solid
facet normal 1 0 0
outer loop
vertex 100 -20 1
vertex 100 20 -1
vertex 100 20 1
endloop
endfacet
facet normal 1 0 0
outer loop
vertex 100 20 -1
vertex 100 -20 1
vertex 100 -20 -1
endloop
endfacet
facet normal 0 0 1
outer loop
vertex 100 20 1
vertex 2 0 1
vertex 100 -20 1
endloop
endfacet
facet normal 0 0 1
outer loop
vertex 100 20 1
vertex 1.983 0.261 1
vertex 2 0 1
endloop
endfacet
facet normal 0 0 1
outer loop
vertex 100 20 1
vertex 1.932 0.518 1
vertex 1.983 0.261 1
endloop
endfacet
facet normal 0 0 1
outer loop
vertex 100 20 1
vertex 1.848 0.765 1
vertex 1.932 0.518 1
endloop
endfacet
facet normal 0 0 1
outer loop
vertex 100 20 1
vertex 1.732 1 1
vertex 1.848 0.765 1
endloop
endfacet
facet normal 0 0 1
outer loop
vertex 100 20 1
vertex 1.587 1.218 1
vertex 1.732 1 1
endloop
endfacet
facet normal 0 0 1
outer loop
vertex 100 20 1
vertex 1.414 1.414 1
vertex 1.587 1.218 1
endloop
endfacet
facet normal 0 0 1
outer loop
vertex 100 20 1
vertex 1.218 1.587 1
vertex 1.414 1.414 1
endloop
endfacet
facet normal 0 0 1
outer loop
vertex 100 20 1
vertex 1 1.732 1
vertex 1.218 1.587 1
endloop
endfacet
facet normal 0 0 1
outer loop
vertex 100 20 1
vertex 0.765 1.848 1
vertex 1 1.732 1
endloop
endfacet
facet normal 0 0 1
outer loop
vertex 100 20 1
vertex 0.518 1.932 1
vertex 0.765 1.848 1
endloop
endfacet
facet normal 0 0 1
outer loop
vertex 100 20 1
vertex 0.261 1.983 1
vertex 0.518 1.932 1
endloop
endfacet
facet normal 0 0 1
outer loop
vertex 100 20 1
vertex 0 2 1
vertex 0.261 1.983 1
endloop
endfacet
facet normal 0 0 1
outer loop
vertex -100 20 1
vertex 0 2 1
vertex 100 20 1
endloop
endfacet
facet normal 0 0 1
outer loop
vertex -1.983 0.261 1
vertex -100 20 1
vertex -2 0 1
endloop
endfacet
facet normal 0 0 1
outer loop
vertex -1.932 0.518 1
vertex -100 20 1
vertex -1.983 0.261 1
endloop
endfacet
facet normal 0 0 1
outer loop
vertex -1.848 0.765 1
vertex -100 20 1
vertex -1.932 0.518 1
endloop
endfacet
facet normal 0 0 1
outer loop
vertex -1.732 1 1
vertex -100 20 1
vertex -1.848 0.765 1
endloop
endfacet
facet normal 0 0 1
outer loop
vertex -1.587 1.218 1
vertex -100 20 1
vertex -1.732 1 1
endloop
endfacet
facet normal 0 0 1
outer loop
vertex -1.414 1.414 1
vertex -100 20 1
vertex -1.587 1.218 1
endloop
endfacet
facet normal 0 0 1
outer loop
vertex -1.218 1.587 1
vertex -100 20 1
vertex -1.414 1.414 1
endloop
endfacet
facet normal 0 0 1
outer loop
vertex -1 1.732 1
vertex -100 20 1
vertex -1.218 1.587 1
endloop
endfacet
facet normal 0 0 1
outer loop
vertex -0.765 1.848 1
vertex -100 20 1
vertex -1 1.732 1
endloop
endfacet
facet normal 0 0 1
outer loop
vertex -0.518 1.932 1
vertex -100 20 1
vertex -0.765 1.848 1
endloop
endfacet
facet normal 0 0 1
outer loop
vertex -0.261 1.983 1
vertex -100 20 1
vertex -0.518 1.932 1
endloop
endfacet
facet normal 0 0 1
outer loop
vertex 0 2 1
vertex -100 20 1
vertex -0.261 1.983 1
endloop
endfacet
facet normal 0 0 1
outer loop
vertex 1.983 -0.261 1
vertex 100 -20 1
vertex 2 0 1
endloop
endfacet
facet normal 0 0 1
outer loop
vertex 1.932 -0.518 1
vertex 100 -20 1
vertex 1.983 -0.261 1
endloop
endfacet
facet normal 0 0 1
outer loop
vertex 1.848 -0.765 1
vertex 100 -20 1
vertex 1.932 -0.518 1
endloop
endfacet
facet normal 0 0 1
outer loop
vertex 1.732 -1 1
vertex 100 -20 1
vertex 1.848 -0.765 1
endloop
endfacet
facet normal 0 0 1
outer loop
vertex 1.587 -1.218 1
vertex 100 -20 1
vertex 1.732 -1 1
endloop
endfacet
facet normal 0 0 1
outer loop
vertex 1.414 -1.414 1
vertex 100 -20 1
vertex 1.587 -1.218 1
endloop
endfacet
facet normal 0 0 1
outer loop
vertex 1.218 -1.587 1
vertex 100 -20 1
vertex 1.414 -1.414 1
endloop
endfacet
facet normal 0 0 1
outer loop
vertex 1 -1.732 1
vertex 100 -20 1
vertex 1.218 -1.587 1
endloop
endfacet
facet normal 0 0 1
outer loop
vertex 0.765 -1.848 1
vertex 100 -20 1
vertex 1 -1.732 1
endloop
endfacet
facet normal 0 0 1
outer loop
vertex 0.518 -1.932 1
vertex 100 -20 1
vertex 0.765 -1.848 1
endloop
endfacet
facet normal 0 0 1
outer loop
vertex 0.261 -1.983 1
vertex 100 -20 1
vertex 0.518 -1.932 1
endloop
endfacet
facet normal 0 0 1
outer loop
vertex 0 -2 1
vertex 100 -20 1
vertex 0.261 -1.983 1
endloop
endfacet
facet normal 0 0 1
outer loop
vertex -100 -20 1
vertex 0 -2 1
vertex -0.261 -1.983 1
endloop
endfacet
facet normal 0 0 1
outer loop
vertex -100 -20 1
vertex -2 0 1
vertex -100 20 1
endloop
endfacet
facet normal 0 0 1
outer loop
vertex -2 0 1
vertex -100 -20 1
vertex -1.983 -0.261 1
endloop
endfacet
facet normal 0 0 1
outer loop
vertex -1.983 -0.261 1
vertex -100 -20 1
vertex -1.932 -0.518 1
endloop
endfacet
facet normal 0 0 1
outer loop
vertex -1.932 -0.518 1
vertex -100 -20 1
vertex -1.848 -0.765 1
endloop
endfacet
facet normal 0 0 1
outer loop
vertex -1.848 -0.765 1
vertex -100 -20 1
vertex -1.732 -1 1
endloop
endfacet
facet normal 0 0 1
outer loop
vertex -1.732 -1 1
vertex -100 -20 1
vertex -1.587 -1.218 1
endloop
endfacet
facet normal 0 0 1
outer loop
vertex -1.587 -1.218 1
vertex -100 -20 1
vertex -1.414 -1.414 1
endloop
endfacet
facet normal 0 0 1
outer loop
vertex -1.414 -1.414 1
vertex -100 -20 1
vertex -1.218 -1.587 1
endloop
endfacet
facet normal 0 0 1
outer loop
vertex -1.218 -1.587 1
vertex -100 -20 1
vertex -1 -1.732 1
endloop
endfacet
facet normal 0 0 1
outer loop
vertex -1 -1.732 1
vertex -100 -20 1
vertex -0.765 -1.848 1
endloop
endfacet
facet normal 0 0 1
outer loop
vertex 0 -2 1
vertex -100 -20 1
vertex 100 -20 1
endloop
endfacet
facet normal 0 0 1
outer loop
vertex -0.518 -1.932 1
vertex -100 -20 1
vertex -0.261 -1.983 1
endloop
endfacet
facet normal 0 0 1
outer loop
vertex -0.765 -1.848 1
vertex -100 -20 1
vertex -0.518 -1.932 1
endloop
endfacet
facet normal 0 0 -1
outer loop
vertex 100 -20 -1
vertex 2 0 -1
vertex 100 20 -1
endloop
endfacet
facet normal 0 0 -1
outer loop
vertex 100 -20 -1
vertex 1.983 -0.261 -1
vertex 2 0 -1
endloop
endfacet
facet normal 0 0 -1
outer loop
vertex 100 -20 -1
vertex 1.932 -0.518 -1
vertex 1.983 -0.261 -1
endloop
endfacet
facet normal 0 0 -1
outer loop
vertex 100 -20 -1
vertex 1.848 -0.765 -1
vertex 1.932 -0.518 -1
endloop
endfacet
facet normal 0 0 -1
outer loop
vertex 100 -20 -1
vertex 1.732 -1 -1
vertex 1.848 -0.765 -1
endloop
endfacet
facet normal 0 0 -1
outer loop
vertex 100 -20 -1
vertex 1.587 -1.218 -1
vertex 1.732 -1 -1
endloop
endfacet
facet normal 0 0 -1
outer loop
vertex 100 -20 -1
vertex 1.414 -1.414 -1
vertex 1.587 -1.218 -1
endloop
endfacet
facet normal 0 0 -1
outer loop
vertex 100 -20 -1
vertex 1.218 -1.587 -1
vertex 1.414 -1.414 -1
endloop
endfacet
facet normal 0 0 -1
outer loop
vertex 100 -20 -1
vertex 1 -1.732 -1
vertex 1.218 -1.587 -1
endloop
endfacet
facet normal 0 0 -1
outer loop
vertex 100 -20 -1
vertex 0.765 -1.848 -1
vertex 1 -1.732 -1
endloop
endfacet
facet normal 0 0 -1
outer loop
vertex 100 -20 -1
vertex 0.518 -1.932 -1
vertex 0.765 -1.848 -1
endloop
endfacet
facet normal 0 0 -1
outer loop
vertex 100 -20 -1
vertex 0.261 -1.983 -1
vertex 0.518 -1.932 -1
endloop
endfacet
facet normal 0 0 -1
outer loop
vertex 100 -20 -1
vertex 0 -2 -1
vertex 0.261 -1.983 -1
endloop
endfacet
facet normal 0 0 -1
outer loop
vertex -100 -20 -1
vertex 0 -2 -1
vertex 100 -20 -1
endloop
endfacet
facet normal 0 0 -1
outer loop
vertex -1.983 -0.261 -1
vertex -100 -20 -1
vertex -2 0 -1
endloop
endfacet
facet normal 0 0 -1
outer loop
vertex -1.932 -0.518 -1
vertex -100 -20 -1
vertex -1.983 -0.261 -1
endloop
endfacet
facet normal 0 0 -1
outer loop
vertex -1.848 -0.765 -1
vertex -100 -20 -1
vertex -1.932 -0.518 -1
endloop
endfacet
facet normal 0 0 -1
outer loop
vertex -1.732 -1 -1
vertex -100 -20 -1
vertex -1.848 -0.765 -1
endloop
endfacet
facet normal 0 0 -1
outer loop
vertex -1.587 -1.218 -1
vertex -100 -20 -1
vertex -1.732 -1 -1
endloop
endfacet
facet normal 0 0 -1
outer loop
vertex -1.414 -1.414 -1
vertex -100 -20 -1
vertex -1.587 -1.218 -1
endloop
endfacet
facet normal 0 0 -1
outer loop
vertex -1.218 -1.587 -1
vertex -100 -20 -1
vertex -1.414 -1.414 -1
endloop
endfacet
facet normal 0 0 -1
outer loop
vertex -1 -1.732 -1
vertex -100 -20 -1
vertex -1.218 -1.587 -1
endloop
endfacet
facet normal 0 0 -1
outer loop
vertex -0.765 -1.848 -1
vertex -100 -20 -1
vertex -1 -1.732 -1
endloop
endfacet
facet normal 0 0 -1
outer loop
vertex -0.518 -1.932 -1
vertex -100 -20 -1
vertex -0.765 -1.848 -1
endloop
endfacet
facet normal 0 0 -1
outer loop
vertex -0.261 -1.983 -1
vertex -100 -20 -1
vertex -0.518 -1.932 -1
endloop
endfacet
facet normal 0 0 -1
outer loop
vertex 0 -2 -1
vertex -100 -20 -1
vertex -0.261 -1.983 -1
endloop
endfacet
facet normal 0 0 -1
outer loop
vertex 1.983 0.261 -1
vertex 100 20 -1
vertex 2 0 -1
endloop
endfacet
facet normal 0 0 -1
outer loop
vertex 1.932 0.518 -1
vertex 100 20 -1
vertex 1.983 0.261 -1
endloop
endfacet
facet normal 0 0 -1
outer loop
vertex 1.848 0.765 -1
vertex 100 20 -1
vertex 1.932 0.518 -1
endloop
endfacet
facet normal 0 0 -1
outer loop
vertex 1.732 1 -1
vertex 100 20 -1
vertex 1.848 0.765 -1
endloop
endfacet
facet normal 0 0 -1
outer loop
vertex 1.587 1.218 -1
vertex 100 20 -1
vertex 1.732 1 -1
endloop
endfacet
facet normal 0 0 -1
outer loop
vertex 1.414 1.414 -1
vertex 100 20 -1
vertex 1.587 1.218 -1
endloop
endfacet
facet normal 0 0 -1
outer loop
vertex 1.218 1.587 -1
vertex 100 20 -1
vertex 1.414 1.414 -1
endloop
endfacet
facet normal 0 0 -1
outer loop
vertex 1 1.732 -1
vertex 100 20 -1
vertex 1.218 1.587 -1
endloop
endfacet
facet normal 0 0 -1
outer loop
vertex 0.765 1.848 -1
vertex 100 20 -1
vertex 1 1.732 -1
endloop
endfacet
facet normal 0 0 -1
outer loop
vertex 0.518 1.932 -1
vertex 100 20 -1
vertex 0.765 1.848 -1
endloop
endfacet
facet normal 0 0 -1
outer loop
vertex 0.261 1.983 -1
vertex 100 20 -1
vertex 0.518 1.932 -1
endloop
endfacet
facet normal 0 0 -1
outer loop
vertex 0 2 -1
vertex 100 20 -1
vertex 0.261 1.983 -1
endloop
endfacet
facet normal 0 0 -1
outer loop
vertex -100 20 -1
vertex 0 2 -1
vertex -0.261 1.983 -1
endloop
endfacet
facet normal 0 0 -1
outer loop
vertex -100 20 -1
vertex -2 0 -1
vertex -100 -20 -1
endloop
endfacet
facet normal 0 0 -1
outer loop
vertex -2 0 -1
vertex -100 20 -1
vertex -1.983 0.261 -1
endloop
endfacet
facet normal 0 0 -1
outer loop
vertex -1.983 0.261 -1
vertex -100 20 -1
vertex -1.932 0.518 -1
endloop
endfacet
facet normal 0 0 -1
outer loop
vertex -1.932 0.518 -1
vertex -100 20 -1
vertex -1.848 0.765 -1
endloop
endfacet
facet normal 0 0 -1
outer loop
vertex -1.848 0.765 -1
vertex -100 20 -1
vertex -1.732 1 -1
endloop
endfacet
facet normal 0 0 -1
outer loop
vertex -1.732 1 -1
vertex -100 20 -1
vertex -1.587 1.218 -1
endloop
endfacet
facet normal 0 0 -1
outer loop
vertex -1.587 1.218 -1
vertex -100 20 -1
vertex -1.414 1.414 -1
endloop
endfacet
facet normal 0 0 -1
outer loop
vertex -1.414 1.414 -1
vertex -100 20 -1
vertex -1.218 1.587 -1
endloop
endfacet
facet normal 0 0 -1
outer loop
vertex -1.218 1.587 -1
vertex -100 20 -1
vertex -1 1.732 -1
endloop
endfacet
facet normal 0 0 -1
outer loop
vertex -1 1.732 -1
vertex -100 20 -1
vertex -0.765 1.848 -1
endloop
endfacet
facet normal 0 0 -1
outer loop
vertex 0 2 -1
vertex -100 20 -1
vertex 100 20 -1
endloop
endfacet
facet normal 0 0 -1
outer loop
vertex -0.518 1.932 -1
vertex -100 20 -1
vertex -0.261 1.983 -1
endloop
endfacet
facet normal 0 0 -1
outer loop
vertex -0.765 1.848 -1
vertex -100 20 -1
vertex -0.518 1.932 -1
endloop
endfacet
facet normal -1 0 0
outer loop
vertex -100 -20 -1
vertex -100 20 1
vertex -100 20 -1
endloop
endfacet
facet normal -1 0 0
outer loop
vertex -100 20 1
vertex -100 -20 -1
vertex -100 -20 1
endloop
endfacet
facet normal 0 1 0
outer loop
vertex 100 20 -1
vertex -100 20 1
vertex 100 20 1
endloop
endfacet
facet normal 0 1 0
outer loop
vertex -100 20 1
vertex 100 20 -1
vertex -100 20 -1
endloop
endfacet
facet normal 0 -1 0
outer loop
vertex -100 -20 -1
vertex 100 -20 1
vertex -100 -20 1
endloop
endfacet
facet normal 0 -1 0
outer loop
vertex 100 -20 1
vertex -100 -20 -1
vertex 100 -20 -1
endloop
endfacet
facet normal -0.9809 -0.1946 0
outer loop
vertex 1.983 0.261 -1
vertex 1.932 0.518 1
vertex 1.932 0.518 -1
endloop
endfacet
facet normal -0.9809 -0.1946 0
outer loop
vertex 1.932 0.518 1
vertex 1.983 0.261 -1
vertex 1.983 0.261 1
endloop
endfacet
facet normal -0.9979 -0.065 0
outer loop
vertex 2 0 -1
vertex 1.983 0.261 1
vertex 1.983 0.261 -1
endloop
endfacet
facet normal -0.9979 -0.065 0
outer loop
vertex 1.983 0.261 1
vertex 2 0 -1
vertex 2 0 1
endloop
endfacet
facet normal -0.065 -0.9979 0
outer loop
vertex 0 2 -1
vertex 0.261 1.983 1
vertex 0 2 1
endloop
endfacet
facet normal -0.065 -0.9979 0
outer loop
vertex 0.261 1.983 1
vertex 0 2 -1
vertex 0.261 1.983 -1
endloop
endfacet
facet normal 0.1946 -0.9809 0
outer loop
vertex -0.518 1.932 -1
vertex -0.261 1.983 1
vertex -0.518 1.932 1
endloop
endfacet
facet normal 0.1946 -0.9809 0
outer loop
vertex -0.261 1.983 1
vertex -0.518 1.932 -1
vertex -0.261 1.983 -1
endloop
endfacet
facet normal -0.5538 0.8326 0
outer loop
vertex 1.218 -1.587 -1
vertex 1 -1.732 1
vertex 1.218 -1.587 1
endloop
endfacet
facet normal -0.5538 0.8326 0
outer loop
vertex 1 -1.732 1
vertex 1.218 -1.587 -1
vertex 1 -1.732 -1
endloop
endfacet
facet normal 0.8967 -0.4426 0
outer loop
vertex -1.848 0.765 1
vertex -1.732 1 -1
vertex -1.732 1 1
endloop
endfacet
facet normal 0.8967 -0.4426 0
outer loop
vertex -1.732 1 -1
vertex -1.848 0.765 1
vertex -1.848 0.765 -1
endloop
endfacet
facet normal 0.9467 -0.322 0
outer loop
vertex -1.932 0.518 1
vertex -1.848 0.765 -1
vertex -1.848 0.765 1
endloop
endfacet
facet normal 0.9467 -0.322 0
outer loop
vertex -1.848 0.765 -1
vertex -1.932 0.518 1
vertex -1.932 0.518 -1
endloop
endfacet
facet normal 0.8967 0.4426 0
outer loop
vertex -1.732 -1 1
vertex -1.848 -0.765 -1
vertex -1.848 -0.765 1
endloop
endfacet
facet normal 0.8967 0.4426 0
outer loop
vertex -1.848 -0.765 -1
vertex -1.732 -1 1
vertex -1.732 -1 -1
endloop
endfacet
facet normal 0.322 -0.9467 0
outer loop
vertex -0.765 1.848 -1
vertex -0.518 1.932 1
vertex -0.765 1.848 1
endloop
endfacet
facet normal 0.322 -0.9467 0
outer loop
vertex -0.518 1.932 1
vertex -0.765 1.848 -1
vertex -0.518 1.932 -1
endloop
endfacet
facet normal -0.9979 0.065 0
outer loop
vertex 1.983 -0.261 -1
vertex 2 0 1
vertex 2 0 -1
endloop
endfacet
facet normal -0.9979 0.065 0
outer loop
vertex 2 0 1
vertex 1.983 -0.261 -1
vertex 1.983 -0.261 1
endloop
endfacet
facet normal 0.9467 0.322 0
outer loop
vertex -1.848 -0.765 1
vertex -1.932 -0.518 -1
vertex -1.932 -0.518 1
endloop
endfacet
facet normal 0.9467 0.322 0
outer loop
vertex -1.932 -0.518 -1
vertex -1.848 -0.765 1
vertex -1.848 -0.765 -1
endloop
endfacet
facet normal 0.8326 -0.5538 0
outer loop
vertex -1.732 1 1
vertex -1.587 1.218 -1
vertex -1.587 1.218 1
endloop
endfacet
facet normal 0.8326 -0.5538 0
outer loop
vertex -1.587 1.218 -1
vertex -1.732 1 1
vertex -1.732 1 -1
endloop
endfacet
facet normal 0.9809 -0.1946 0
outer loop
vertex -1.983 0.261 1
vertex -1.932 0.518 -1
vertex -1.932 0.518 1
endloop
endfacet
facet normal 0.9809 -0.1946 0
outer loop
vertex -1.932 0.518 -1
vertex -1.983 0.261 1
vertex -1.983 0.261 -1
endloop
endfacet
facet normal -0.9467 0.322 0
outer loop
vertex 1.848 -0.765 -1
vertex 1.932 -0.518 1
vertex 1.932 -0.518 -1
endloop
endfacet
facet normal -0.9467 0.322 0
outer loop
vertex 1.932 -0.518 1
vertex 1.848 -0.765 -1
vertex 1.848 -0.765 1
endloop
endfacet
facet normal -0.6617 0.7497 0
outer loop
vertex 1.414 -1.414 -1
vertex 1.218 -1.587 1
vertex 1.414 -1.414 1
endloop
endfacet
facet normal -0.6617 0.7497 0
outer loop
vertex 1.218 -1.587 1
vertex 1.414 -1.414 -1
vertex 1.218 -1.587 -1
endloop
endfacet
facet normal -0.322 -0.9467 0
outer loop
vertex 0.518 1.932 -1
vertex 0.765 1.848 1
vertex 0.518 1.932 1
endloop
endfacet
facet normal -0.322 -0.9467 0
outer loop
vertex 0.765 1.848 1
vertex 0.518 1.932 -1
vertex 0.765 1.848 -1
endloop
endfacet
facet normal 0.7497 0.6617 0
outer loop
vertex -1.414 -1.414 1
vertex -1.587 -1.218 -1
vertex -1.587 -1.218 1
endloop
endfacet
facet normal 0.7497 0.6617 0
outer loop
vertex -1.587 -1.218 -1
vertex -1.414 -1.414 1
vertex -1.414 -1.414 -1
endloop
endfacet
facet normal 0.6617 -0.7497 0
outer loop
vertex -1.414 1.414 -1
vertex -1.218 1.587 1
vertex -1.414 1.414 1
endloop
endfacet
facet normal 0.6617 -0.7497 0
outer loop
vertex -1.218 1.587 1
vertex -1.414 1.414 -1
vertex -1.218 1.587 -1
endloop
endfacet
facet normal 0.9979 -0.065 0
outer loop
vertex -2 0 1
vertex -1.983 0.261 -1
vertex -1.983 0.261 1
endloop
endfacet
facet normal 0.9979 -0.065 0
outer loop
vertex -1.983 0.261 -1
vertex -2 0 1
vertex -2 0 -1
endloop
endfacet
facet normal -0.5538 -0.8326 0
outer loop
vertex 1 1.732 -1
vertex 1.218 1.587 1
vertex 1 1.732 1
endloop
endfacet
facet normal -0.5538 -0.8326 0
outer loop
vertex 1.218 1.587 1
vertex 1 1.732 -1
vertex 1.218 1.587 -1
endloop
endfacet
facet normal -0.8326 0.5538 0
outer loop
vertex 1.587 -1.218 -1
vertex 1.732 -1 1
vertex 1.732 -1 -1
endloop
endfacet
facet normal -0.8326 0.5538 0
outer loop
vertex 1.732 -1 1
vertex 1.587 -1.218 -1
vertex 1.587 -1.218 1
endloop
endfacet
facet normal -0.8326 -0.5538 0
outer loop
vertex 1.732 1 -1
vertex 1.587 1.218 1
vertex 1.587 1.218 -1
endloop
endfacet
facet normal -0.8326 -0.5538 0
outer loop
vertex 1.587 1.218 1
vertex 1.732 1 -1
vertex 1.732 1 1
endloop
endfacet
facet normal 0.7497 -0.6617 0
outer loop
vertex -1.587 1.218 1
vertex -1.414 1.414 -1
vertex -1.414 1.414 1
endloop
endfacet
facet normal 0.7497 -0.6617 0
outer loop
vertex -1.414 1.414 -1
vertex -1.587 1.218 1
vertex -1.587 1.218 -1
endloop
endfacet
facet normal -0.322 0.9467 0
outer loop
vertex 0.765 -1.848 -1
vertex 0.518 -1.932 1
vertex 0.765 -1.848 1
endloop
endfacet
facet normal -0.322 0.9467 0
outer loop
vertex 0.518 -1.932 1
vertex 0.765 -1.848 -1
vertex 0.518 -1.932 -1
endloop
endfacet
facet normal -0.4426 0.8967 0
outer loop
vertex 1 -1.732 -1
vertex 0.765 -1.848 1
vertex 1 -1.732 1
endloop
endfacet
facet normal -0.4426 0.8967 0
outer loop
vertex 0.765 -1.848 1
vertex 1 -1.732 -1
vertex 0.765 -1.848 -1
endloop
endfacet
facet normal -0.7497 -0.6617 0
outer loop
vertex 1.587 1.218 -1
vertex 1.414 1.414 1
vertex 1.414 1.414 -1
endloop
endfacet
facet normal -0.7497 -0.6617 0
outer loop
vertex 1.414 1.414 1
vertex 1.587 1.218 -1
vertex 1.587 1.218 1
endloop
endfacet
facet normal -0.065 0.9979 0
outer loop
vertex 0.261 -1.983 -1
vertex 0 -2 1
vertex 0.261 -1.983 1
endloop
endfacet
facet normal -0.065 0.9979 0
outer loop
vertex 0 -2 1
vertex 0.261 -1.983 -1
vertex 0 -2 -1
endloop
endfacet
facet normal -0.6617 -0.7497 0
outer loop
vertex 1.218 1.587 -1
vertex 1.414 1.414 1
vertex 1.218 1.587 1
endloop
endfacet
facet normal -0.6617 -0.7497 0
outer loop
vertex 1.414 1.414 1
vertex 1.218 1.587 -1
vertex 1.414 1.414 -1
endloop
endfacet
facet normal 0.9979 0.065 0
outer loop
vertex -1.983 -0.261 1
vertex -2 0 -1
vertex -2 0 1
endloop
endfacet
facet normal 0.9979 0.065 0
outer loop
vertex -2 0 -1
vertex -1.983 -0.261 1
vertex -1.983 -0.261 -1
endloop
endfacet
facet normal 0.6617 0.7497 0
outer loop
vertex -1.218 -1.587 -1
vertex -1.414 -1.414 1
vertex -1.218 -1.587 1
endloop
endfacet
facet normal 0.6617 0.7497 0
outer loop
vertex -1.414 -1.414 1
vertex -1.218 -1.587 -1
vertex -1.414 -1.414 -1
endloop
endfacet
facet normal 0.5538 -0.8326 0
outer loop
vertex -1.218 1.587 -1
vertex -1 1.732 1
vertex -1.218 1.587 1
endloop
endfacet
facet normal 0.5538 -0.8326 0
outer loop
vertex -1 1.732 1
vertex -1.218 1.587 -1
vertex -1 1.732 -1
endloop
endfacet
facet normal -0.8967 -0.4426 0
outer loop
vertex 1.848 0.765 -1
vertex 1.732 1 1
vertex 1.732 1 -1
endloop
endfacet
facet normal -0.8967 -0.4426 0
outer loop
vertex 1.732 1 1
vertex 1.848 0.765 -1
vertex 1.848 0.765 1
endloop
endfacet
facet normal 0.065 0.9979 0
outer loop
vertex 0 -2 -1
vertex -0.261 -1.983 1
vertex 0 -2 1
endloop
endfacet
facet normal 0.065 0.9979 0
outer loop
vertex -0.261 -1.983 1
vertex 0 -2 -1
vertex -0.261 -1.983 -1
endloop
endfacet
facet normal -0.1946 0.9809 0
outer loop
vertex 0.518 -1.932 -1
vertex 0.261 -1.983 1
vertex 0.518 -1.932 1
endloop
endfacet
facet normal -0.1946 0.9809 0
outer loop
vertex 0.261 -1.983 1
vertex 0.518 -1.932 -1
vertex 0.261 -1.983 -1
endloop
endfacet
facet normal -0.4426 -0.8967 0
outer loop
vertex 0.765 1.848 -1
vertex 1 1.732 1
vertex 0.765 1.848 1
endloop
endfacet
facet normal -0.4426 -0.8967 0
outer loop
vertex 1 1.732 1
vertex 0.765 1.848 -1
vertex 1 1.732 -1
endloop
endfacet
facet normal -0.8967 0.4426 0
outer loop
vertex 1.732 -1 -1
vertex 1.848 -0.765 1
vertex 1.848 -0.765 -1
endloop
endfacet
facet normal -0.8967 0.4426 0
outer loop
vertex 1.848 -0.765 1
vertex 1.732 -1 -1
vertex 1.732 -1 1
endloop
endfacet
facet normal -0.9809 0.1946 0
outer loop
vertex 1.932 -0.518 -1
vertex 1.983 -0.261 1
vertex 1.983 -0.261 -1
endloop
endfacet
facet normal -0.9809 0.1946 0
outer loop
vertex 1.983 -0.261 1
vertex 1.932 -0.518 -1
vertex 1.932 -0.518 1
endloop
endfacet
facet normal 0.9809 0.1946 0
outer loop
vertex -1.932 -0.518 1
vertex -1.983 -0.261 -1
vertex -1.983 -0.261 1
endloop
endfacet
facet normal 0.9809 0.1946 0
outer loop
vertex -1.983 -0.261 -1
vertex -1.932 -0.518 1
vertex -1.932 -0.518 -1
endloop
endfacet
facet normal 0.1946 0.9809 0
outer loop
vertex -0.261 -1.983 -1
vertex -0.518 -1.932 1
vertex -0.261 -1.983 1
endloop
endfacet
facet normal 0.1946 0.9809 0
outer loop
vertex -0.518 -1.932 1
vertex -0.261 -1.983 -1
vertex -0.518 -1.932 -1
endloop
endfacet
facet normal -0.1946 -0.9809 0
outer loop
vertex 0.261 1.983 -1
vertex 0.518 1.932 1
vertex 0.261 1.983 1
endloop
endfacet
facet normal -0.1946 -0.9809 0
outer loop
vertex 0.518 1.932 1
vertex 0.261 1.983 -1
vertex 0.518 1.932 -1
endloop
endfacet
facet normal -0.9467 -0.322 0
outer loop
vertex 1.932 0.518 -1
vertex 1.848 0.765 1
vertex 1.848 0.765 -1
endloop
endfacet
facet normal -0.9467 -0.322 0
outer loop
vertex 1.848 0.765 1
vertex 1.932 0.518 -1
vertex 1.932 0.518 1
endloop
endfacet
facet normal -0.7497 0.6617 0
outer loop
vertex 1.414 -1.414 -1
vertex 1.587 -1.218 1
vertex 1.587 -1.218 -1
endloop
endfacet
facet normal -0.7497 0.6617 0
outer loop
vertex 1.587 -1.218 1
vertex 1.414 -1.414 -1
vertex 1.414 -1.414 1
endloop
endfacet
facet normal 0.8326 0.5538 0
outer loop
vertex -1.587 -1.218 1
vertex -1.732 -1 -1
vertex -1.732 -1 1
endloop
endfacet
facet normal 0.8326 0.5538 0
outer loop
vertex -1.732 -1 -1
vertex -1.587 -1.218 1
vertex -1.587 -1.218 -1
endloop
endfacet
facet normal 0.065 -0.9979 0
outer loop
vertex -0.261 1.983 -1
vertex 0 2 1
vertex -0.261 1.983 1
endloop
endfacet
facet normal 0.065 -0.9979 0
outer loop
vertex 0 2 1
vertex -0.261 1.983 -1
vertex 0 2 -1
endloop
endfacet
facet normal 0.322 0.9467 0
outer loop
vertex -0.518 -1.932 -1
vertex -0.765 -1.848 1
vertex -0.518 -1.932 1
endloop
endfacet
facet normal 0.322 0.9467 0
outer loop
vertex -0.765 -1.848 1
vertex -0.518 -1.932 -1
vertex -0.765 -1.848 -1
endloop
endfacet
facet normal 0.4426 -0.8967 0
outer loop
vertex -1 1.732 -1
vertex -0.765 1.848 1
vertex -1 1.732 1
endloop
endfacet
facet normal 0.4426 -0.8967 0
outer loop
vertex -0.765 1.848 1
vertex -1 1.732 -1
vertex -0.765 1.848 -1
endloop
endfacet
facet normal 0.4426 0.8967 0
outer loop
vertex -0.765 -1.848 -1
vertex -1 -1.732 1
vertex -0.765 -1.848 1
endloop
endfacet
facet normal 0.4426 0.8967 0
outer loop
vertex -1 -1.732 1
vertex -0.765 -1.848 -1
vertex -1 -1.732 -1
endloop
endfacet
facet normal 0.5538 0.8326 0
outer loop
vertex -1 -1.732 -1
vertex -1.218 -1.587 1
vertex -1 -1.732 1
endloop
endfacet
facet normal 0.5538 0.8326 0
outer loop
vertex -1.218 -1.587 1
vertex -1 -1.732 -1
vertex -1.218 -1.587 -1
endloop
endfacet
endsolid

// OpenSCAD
// ========================================
// a 200 x 40 x 2 mm plate with one 4 mm holes
// NeuroCAD canonical IR; dimensions are millimetres
// ========================================
$fn = 48;

difference() {
  cube(size=[200, 40, 2], center=true);
  cylinder(r=2, h=4, center=true);
}
